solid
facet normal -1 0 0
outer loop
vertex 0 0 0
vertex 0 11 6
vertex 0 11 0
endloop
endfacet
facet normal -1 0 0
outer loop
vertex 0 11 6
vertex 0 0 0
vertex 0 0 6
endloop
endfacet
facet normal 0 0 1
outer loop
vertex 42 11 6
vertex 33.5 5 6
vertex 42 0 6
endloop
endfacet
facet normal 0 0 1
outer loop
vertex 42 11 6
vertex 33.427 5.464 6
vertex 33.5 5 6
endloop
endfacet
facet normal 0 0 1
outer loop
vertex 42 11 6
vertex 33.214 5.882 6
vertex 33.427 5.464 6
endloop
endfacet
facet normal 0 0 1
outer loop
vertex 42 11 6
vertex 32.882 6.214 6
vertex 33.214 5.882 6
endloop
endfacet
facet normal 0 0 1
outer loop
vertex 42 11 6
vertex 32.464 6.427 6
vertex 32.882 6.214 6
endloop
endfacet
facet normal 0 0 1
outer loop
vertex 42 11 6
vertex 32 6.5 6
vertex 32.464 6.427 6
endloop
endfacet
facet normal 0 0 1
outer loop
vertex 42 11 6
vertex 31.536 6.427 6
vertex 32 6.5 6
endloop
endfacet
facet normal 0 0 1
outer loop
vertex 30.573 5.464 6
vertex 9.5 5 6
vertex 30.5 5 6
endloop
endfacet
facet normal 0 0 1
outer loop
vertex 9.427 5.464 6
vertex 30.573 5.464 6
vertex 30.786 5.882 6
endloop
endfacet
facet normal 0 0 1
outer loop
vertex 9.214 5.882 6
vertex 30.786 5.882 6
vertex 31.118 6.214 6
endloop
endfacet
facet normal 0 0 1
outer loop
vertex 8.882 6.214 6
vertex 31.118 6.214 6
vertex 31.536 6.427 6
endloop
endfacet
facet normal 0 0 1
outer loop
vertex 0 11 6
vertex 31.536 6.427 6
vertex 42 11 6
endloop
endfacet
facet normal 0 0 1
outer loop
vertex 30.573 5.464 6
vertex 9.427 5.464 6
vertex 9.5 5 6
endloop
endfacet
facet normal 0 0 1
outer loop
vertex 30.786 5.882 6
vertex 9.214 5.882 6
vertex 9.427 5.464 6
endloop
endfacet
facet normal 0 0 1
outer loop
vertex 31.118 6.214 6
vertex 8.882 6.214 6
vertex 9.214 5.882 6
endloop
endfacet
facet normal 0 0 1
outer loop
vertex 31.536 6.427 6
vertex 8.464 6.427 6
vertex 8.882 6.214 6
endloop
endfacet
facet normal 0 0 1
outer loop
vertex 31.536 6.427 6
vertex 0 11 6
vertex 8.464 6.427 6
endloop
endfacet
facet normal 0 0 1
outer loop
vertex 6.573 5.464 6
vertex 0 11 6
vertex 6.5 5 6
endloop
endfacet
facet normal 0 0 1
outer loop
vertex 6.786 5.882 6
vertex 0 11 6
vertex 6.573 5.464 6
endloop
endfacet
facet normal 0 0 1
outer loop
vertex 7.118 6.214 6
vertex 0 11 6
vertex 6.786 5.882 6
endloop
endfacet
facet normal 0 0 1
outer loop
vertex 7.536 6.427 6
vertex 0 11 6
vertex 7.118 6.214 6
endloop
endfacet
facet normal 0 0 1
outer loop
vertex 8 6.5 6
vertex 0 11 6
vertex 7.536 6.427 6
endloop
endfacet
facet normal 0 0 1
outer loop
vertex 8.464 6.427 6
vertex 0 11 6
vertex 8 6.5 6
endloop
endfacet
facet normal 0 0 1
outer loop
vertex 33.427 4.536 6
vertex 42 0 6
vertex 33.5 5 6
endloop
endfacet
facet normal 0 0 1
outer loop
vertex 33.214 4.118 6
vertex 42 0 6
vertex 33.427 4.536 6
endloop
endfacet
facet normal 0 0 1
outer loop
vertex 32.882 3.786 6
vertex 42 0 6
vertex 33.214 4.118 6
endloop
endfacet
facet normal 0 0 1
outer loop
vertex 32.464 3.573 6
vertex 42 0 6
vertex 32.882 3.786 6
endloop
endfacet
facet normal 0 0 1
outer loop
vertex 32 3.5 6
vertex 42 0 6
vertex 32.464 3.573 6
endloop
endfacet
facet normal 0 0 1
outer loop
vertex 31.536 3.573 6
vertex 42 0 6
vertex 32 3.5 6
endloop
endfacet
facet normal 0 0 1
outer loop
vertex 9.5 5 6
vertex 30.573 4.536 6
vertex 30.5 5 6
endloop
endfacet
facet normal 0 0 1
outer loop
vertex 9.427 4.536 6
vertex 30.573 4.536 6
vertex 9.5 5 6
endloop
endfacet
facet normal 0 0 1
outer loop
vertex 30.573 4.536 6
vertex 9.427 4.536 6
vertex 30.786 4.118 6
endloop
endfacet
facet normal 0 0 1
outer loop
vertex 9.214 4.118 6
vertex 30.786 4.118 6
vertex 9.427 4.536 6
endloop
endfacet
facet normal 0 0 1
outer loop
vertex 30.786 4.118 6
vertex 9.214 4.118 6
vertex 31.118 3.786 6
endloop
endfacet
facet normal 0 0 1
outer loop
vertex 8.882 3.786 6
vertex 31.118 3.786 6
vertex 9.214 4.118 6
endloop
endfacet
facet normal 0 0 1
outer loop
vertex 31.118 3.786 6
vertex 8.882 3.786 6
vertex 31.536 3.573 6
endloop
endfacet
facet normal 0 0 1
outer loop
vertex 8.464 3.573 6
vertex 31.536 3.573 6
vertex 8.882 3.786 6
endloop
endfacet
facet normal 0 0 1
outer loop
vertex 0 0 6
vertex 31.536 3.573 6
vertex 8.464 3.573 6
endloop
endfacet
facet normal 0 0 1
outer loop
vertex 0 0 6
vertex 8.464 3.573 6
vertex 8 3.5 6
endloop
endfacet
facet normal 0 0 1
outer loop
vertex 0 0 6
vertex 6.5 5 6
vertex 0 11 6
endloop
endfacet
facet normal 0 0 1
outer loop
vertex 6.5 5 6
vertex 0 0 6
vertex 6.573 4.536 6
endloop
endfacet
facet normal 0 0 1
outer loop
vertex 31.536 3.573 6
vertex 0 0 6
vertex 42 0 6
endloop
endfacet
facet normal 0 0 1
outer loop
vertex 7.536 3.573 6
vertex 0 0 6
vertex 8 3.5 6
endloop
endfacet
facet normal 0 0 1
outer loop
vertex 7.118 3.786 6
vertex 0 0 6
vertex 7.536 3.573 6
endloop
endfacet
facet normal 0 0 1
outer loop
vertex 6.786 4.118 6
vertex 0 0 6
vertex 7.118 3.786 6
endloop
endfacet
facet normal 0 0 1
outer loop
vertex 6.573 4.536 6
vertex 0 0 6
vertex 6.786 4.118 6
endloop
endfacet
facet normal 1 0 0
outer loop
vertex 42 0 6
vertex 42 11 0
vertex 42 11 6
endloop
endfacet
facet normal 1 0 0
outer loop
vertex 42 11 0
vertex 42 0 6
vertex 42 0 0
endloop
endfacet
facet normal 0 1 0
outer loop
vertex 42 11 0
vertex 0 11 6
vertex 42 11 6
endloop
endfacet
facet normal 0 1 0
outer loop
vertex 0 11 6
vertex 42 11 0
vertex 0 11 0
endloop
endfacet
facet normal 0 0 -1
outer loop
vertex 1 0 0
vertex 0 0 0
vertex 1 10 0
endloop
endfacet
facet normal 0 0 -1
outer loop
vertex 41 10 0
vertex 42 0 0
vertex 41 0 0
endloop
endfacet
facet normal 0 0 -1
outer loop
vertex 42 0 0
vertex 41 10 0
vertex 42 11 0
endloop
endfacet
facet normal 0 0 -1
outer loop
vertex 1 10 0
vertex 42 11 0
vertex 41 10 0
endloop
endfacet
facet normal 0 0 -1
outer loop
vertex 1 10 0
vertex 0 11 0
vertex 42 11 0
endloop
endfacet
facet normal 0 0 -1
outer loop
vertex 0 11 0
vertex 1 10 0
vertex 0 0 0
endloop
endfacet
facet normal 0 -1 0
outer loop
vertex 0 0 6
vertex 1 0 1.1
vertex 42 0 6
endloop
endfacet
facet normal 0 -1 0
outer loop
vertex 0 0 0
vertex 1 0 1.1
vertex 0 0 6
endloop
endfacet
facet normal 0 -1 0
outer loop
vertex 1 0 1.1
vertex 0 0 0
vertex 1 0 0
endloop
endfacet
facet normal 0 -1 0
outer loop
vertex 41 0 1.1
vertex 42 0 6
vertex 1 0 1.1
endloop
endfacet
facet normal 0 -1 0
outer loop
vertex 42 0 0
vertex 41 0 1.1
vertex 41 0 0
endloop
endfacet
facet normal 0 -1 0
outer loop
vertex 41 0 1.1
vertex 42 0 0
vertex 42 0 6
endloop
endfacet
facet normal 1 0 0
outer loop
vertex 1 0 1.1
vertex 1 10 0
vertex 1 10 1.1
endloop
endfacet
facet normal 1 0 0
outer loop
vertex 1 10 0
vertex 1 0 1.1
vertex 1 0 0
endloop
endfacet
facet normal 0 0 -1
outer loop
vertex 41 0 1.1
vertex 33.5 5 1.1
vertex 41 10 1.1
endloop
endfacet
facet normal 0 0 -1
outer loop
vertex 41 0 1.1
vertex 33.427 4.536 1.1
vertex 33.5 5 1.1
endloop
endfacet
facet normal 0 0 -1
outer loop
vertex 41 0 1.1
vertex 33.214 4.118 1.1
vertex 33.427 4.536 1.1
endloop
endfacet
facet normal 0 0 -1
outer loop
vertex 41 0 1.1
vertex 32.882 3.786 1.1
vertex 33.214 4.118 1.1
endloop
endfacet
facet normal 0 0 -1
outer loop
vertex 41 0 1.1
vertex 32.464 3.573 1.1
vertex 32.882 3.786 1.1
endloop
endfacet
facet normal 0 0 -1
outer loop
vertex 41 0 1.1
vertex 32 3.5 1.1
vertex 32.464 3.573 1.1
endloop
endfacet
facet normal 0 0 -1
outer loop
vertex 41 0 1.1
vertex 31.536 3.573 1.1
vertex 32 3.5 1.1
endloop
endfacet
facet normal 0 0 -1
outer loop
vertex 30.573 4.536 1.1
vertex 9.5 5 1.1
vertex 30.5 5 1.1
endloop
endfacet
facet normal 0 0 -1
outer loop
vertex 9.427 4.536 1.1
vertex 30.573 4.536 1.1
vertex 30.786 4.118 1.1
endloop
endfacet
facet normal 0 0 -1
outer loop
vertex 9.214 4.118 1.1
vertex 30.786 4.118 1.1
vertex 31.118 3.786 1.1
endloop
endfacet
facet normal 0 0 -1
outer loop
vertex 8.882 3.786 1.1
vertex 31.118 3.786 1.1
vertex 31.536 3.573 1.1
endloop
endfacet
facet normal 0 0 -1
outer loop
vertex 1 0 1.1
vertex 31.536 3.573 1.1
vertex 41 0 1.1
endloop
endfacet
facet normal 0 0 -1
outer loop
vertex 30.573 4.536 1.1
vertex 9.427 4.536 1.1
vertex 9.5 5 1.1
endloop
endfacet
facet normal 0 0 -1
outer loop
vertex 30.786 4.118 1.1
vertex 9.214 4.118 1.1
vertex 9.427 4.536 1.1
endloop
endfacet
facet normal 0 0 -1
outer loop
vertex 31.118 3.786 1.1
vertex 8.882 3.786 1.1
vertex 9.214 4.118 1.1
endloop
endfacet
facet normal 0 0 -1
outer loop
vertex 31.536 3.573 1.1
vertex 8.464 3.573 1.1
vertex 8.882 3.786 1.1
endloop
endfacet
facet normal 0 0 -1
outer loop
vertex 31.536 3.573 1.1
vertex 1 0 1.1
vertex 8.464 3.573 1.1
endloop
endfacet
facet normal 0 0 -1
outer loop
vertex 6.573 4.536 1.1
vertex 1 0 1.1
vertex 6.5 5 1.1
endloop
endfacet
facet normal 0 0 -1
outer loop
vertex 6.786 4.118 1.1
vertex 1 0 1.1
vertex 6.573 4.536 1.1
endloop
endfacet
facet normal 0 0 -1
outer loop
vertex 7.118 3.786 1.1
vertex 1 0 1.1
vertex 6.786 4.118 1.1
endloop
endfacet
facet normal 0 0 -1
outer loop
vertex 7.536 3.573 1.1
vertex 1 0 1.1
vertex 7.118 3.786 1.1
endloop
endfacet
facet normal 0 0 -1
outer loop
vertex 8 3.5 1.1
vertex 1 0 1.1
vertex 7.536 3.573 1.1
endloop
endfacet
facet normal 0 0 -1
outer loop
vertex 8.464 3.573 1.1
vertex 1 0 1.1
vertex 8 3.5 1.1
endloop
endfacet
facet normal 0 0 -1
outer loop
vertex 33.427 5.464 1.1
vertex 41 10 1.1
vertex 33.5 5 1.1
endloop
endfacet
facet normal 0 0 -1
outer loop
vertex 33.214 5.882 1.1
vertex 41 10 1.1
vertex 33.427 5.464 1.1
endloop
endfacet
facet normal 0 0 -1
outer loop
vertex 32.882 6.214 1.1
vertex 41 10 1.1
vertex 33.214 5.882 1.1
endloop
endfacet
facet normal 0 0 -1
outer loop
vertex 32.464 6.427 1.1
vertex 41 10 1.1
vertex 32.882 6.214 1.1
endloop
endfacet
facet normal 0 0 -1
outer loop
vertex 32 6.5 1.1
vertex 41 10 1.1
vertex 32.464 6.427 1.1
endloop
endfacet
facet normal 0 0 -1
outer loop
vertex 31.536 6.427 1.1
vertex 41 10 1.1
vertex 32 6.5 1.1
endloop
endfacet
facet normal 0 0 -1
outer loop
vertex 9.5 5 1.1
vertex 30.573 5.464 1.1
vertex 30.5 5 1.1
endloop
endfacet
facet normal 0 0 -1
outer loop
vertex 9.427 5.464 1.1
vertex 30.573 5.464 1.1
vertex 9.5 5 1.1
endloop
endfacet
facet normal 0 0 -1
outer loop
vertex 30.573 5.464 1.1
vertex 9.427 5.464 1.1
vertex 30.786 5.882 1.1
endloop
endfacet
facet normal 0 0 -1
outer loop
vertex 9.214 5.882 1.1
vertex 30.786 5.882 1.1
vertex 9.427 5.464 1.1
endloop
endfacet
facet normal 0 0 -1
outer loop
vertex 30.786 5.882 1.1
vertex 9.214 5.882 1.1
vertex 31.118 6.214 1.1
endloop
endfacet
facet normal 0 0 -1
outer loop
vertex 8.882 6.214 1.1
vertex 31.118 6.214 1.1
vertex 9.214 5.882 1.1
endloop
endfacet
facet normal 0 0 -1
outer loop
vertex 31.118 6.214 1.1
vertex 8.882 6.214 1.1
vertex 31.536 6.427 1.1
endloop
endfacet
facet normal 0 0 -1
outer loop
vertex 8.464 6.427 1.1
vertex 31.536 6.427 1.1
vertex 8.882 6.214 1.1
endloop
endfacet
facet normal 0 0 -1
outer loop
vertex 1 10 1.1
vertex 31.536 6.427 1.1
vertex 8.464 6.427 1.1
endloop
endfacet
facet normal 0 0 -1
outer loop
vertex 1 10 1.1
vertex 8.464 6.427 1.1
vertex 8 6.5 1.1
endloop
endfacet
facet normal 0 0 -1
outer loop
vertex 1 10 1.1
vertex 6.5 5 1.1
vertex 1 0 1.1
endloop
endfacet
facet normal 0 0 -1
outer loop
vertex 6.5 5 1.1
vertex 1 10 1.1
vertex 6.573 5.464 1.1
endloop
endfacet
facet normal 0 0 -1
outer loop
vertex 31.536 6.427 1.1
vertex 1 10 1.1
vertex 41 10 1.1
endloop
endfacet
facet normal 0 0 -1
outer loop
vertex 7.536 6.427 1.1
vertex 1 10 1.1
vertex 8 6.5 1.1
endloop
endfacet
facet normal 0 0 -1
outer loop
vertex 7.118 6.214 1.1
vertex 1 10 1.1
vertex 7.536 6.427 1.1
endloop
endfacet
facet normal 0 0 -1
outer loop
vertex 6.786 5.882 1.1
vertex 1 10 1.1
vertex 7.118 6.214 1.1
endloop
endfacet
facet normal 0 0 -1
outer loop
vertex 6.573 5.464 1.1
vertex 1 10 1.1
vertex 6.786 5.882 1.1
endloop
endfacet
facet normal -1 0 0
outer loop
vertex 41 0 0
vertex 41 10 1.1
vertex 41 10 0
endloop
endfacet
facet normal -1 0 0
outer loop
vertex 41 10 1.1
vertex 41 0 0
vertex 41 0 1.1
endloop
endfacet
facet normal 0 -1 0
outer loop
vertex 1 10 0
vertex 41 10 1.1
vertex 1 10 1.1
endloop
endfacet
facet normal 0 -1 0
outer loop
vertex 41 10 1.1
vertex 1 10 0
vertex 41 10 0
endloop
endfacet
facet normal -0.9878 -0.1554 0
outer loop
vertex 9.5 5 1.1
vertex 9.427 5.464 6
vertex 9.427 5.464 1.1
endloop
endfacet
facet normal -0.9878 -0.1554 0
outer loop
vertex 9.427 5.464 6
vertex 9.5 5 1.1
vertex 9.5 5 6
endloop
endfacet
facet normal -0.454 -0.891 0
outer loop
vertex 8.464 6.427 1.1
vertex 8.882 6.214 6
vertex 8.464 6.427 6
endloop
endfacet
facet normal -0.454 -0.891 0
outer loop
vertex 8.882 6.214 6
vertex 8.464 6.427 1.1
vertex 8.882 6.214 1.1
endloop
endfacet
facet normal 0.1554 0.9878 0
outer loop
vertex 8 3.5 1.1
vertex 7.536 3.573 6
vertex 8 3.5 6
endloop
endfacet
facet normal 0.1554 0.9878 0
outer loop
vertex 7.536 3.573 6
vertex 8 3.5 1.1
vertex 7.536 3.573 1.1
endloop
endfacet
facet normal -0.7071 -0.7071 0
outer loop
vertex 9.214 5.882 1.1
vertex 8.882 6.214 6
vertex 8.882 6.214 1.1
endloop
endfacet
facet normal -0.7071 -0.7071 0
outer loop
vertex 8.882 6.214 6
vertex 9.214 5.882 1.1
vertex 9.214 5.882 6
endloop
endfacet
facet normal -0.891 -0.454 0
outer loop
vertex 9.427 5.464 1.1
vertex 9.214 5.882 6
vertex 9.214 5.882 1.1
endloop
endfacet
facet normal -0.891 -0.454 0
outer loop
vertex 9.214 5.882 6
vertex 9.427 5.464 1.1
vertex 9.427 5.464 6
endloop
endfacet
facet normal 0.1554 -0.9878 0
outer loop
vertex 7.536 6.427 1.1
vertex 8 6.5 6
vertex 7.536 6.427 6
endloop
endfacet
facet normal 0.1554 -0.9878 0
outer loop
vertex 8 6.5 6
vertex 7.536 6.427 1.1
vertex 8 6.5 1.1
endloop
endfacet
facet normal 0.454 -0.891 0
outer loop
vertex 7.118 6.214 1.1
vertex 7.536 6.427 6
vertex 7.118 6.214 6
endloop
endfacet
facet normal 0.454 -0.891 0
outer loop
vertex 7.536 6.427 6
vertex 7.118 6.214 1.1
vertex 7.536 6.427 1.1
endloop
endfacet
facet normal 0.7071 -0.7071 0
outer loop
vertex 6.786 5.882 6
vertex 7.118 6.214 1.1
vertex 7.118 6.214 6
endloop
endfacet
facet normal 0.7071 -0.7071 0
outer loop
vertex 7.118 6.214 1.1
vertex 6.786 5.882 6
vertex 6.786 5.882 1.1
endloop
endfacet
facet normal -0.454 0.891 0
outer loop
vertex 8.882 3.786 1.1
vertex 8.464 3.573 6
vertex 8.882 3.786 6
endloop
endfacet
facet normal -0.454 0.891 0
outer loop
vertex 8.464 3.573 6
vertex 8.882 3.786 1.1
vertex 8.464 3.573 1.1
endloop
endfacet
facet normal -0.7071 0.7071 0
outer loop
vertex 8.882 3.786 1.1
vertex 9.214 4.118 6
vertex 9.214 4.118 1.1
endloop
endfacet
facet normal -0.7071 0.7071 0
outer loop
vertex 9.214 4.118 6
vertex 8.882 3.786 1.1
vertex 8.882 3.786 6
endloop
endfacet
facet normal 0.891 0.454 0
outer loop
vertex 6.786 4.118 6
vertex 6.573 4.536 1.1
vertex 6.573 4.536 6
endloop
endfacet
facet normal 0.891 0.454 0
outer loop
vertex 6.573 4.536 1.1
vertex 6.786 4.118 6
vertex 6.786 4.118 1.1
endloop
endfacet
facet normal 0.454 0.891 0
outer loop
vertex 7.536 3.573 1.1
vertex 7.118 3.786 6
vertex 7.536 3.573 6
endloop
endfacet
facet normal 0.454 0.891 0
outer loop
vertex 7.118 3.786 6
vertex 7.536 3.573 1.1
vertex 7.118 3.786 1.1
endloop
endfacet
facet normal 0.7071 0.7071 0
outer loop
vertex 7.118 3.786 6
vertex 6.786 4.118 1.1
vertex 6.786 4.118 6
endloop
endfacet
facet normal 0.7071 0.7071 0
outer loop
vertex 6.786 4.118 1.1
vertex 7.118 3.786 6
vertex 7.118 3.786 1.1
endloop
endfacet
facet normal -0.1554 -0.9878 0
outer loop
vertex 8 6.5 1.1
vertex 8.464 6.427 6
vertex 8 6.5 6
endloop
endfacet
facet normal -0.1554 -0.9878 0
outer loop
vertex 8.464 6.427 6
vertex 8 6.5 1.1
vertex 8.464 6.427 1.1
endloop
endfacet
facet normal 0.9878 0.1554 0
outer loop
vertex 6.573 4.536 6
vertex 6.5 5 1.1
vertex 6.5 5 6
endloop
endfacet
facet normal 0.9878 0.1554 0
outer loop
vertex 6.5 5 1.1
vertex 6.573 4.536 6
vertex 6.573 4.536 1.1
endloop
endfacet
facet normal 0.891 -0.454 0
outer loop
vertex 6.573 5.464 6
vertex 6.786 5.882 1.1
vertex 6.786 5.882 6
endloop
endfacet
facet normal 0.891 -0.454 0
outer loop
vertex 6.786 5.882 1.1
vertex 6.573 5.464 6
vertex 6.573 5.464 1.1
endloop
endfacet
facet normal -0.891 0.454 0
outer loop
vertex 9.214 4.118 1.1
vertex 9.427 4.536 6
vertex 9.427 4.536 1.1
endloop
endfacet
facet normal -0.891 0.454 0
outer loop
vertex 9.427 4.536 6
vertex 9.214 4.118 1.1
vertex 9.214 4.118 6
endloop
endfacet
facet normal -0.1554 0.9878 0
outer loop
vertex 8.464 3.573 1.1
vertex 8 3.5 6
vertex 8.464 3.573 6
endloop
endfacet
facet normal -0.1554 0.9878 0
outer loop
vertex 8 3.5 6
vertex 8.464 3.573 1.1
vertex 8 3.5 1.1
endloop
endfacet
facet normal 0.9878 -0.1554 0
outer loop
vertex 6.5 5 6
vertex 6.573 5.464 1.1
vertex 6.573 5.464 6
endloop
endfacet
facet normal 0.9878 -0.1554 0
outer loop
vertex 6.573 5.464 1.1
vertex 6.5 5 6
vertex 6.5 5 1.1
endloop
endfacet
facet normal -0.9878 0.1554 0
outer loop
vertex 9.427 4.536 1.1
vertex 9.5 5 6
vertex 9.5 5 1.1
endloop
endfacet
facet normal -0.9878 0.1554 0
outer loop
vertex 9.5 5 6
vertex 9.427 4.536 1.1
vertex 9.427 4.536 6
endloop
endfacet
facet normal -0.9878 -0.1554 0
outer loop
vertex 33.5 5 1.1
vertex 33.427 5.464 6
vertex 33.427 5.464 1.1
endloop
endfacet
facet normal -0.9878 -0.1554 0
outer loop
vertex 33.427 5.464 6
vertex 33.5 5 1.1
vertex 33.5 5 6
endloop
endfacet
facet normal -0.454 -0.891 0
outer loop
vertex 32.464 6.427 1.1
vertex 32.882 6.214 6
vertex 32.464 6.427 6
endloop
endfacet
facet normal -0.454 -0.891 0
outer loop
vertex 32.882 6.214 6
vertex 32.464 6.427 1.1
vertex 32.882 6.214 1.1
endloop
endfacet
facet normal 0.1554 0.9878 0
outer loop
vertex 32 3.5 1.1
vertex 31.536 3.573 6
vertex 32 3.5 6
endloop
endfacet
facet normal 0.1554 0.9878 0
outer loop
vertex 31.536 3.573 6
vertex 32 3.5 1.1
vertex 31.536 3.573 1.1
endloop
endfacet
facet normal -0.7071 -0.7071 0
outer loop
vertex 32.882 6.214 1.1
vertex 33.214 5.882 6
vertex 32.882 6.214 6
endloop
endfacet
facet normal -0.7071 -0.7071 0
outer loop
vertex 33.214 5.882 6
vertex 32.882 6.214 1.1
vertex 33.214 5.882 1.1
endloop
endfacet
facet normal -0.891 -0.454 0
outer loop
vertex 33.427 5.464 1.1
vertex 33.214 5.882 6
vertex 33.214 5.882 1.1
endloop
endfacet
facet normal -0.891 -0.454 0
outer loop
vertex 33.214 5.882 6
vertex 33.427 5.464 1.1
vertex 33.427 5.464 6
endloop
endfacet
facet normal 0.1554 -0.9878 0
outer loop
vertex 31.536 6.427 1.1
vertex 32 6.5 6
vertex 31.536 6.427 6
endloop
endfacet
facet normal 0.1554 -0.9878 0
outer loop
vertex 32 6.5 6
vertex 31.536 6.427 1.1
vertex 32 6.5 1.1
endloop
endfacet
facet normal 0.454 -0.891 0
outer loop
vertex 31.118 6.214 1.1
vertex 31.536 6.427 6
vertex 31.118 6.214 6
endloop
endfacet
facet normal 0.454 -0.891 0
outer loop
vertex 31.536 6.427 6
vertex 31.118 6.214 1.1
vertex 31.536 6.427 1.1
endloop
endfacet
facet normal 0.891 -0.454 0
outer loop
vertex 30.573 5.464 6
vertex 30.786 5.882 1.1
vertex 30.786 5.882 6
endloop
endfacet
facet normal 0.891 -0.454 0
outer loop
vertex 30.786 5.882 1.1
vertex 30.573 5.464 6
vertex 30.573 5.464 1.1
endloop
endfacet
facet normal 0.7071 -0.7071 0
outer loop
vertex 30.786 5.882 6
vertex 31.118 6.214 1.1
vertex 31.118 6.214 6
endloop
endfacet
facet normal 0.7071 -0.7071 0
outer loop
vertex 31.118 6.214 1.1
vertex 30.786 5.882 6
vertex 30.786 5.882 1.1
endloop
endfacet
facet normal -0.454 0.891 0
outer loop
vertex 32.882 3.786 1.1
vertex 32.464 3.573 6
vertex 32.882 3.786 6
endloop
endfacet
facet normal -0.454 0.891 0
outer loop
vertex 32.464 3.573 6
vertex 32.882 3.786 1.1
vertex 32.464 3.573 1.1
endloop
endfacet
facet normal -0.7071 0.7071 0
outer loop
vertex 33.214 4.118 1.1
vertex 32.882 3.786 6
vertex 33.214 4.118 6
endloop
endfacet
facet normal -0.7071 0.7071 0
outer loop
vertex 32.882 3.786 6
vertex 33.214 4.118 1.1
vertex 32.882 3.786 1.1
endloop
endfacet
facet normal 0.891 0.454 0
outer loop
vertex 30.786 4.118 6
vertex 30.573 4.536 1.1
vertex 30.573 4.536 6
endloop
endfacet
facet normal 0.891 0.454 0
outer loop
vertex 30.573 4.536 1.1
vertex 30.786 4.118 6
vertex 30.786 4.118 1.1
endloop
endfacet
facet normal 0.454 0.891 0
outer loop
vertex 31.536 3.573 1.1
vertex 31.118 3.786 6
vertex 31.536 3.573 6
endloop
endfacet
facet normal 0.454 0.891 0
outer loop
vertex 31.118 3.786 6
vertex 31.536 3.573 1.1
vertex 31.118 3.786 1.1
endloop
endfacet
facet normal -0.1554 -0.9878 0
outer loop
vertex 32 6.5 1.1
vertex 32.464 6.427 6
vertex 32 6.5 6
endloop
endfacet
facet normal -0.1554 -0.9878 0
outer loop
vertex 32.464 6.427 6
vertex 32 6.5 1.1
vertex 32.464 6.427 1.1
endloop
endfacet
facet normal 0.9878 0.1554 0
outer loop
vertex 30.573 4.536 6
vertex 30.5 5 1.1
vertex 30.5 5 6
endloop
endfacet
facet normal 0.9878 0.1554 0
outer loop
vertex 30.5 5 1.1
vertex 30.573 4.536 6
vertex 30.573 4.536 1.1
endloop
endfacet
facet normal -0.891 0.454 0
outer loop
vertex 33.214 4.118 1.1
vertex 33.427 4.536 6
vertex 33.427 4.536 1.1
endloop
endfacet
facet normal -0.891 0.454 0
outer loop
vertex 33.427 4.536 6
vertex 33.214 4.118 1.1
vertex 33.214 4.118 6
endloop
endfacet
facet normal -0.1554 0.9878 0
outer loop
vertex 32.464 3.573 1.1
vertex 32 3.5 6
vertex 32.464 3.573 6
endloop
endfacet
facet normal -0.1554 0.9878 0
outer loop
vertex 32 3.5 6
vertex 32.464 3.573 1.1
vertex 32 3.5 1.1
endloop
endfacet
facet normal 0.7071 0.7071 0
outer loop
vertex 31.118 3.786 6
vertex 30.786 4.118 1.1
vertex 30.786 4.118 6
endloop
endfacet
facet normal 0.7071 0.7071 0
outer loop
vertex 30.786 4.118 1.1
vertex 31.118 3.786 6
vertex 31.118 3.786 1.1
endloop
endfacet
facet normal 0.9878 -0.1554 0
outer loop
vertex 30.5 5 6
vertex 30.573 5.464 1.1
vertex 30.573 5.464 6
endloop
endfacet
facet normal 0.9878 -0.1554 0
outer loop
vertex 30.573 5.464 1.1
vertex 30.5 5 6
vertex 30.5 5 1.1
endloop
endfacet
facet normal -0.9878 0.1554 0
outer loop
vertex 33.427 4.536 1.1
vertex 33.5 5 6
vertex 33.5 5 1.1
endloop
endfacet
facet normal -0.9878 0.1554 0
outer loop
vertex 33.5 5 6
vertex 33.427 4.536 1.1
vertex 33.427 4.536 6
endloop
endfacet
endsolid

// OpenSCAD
difference() {
    cube([42,11,6]);
    translate([1,0,-0.1]) cube([40,10,1.2]);
    translate([8,5,0]) cylinder(h=20,r=1.5,$fn=20);
    translate([32,5,0]) cylinder(h=20,r=1.5,$fn=20);
}
